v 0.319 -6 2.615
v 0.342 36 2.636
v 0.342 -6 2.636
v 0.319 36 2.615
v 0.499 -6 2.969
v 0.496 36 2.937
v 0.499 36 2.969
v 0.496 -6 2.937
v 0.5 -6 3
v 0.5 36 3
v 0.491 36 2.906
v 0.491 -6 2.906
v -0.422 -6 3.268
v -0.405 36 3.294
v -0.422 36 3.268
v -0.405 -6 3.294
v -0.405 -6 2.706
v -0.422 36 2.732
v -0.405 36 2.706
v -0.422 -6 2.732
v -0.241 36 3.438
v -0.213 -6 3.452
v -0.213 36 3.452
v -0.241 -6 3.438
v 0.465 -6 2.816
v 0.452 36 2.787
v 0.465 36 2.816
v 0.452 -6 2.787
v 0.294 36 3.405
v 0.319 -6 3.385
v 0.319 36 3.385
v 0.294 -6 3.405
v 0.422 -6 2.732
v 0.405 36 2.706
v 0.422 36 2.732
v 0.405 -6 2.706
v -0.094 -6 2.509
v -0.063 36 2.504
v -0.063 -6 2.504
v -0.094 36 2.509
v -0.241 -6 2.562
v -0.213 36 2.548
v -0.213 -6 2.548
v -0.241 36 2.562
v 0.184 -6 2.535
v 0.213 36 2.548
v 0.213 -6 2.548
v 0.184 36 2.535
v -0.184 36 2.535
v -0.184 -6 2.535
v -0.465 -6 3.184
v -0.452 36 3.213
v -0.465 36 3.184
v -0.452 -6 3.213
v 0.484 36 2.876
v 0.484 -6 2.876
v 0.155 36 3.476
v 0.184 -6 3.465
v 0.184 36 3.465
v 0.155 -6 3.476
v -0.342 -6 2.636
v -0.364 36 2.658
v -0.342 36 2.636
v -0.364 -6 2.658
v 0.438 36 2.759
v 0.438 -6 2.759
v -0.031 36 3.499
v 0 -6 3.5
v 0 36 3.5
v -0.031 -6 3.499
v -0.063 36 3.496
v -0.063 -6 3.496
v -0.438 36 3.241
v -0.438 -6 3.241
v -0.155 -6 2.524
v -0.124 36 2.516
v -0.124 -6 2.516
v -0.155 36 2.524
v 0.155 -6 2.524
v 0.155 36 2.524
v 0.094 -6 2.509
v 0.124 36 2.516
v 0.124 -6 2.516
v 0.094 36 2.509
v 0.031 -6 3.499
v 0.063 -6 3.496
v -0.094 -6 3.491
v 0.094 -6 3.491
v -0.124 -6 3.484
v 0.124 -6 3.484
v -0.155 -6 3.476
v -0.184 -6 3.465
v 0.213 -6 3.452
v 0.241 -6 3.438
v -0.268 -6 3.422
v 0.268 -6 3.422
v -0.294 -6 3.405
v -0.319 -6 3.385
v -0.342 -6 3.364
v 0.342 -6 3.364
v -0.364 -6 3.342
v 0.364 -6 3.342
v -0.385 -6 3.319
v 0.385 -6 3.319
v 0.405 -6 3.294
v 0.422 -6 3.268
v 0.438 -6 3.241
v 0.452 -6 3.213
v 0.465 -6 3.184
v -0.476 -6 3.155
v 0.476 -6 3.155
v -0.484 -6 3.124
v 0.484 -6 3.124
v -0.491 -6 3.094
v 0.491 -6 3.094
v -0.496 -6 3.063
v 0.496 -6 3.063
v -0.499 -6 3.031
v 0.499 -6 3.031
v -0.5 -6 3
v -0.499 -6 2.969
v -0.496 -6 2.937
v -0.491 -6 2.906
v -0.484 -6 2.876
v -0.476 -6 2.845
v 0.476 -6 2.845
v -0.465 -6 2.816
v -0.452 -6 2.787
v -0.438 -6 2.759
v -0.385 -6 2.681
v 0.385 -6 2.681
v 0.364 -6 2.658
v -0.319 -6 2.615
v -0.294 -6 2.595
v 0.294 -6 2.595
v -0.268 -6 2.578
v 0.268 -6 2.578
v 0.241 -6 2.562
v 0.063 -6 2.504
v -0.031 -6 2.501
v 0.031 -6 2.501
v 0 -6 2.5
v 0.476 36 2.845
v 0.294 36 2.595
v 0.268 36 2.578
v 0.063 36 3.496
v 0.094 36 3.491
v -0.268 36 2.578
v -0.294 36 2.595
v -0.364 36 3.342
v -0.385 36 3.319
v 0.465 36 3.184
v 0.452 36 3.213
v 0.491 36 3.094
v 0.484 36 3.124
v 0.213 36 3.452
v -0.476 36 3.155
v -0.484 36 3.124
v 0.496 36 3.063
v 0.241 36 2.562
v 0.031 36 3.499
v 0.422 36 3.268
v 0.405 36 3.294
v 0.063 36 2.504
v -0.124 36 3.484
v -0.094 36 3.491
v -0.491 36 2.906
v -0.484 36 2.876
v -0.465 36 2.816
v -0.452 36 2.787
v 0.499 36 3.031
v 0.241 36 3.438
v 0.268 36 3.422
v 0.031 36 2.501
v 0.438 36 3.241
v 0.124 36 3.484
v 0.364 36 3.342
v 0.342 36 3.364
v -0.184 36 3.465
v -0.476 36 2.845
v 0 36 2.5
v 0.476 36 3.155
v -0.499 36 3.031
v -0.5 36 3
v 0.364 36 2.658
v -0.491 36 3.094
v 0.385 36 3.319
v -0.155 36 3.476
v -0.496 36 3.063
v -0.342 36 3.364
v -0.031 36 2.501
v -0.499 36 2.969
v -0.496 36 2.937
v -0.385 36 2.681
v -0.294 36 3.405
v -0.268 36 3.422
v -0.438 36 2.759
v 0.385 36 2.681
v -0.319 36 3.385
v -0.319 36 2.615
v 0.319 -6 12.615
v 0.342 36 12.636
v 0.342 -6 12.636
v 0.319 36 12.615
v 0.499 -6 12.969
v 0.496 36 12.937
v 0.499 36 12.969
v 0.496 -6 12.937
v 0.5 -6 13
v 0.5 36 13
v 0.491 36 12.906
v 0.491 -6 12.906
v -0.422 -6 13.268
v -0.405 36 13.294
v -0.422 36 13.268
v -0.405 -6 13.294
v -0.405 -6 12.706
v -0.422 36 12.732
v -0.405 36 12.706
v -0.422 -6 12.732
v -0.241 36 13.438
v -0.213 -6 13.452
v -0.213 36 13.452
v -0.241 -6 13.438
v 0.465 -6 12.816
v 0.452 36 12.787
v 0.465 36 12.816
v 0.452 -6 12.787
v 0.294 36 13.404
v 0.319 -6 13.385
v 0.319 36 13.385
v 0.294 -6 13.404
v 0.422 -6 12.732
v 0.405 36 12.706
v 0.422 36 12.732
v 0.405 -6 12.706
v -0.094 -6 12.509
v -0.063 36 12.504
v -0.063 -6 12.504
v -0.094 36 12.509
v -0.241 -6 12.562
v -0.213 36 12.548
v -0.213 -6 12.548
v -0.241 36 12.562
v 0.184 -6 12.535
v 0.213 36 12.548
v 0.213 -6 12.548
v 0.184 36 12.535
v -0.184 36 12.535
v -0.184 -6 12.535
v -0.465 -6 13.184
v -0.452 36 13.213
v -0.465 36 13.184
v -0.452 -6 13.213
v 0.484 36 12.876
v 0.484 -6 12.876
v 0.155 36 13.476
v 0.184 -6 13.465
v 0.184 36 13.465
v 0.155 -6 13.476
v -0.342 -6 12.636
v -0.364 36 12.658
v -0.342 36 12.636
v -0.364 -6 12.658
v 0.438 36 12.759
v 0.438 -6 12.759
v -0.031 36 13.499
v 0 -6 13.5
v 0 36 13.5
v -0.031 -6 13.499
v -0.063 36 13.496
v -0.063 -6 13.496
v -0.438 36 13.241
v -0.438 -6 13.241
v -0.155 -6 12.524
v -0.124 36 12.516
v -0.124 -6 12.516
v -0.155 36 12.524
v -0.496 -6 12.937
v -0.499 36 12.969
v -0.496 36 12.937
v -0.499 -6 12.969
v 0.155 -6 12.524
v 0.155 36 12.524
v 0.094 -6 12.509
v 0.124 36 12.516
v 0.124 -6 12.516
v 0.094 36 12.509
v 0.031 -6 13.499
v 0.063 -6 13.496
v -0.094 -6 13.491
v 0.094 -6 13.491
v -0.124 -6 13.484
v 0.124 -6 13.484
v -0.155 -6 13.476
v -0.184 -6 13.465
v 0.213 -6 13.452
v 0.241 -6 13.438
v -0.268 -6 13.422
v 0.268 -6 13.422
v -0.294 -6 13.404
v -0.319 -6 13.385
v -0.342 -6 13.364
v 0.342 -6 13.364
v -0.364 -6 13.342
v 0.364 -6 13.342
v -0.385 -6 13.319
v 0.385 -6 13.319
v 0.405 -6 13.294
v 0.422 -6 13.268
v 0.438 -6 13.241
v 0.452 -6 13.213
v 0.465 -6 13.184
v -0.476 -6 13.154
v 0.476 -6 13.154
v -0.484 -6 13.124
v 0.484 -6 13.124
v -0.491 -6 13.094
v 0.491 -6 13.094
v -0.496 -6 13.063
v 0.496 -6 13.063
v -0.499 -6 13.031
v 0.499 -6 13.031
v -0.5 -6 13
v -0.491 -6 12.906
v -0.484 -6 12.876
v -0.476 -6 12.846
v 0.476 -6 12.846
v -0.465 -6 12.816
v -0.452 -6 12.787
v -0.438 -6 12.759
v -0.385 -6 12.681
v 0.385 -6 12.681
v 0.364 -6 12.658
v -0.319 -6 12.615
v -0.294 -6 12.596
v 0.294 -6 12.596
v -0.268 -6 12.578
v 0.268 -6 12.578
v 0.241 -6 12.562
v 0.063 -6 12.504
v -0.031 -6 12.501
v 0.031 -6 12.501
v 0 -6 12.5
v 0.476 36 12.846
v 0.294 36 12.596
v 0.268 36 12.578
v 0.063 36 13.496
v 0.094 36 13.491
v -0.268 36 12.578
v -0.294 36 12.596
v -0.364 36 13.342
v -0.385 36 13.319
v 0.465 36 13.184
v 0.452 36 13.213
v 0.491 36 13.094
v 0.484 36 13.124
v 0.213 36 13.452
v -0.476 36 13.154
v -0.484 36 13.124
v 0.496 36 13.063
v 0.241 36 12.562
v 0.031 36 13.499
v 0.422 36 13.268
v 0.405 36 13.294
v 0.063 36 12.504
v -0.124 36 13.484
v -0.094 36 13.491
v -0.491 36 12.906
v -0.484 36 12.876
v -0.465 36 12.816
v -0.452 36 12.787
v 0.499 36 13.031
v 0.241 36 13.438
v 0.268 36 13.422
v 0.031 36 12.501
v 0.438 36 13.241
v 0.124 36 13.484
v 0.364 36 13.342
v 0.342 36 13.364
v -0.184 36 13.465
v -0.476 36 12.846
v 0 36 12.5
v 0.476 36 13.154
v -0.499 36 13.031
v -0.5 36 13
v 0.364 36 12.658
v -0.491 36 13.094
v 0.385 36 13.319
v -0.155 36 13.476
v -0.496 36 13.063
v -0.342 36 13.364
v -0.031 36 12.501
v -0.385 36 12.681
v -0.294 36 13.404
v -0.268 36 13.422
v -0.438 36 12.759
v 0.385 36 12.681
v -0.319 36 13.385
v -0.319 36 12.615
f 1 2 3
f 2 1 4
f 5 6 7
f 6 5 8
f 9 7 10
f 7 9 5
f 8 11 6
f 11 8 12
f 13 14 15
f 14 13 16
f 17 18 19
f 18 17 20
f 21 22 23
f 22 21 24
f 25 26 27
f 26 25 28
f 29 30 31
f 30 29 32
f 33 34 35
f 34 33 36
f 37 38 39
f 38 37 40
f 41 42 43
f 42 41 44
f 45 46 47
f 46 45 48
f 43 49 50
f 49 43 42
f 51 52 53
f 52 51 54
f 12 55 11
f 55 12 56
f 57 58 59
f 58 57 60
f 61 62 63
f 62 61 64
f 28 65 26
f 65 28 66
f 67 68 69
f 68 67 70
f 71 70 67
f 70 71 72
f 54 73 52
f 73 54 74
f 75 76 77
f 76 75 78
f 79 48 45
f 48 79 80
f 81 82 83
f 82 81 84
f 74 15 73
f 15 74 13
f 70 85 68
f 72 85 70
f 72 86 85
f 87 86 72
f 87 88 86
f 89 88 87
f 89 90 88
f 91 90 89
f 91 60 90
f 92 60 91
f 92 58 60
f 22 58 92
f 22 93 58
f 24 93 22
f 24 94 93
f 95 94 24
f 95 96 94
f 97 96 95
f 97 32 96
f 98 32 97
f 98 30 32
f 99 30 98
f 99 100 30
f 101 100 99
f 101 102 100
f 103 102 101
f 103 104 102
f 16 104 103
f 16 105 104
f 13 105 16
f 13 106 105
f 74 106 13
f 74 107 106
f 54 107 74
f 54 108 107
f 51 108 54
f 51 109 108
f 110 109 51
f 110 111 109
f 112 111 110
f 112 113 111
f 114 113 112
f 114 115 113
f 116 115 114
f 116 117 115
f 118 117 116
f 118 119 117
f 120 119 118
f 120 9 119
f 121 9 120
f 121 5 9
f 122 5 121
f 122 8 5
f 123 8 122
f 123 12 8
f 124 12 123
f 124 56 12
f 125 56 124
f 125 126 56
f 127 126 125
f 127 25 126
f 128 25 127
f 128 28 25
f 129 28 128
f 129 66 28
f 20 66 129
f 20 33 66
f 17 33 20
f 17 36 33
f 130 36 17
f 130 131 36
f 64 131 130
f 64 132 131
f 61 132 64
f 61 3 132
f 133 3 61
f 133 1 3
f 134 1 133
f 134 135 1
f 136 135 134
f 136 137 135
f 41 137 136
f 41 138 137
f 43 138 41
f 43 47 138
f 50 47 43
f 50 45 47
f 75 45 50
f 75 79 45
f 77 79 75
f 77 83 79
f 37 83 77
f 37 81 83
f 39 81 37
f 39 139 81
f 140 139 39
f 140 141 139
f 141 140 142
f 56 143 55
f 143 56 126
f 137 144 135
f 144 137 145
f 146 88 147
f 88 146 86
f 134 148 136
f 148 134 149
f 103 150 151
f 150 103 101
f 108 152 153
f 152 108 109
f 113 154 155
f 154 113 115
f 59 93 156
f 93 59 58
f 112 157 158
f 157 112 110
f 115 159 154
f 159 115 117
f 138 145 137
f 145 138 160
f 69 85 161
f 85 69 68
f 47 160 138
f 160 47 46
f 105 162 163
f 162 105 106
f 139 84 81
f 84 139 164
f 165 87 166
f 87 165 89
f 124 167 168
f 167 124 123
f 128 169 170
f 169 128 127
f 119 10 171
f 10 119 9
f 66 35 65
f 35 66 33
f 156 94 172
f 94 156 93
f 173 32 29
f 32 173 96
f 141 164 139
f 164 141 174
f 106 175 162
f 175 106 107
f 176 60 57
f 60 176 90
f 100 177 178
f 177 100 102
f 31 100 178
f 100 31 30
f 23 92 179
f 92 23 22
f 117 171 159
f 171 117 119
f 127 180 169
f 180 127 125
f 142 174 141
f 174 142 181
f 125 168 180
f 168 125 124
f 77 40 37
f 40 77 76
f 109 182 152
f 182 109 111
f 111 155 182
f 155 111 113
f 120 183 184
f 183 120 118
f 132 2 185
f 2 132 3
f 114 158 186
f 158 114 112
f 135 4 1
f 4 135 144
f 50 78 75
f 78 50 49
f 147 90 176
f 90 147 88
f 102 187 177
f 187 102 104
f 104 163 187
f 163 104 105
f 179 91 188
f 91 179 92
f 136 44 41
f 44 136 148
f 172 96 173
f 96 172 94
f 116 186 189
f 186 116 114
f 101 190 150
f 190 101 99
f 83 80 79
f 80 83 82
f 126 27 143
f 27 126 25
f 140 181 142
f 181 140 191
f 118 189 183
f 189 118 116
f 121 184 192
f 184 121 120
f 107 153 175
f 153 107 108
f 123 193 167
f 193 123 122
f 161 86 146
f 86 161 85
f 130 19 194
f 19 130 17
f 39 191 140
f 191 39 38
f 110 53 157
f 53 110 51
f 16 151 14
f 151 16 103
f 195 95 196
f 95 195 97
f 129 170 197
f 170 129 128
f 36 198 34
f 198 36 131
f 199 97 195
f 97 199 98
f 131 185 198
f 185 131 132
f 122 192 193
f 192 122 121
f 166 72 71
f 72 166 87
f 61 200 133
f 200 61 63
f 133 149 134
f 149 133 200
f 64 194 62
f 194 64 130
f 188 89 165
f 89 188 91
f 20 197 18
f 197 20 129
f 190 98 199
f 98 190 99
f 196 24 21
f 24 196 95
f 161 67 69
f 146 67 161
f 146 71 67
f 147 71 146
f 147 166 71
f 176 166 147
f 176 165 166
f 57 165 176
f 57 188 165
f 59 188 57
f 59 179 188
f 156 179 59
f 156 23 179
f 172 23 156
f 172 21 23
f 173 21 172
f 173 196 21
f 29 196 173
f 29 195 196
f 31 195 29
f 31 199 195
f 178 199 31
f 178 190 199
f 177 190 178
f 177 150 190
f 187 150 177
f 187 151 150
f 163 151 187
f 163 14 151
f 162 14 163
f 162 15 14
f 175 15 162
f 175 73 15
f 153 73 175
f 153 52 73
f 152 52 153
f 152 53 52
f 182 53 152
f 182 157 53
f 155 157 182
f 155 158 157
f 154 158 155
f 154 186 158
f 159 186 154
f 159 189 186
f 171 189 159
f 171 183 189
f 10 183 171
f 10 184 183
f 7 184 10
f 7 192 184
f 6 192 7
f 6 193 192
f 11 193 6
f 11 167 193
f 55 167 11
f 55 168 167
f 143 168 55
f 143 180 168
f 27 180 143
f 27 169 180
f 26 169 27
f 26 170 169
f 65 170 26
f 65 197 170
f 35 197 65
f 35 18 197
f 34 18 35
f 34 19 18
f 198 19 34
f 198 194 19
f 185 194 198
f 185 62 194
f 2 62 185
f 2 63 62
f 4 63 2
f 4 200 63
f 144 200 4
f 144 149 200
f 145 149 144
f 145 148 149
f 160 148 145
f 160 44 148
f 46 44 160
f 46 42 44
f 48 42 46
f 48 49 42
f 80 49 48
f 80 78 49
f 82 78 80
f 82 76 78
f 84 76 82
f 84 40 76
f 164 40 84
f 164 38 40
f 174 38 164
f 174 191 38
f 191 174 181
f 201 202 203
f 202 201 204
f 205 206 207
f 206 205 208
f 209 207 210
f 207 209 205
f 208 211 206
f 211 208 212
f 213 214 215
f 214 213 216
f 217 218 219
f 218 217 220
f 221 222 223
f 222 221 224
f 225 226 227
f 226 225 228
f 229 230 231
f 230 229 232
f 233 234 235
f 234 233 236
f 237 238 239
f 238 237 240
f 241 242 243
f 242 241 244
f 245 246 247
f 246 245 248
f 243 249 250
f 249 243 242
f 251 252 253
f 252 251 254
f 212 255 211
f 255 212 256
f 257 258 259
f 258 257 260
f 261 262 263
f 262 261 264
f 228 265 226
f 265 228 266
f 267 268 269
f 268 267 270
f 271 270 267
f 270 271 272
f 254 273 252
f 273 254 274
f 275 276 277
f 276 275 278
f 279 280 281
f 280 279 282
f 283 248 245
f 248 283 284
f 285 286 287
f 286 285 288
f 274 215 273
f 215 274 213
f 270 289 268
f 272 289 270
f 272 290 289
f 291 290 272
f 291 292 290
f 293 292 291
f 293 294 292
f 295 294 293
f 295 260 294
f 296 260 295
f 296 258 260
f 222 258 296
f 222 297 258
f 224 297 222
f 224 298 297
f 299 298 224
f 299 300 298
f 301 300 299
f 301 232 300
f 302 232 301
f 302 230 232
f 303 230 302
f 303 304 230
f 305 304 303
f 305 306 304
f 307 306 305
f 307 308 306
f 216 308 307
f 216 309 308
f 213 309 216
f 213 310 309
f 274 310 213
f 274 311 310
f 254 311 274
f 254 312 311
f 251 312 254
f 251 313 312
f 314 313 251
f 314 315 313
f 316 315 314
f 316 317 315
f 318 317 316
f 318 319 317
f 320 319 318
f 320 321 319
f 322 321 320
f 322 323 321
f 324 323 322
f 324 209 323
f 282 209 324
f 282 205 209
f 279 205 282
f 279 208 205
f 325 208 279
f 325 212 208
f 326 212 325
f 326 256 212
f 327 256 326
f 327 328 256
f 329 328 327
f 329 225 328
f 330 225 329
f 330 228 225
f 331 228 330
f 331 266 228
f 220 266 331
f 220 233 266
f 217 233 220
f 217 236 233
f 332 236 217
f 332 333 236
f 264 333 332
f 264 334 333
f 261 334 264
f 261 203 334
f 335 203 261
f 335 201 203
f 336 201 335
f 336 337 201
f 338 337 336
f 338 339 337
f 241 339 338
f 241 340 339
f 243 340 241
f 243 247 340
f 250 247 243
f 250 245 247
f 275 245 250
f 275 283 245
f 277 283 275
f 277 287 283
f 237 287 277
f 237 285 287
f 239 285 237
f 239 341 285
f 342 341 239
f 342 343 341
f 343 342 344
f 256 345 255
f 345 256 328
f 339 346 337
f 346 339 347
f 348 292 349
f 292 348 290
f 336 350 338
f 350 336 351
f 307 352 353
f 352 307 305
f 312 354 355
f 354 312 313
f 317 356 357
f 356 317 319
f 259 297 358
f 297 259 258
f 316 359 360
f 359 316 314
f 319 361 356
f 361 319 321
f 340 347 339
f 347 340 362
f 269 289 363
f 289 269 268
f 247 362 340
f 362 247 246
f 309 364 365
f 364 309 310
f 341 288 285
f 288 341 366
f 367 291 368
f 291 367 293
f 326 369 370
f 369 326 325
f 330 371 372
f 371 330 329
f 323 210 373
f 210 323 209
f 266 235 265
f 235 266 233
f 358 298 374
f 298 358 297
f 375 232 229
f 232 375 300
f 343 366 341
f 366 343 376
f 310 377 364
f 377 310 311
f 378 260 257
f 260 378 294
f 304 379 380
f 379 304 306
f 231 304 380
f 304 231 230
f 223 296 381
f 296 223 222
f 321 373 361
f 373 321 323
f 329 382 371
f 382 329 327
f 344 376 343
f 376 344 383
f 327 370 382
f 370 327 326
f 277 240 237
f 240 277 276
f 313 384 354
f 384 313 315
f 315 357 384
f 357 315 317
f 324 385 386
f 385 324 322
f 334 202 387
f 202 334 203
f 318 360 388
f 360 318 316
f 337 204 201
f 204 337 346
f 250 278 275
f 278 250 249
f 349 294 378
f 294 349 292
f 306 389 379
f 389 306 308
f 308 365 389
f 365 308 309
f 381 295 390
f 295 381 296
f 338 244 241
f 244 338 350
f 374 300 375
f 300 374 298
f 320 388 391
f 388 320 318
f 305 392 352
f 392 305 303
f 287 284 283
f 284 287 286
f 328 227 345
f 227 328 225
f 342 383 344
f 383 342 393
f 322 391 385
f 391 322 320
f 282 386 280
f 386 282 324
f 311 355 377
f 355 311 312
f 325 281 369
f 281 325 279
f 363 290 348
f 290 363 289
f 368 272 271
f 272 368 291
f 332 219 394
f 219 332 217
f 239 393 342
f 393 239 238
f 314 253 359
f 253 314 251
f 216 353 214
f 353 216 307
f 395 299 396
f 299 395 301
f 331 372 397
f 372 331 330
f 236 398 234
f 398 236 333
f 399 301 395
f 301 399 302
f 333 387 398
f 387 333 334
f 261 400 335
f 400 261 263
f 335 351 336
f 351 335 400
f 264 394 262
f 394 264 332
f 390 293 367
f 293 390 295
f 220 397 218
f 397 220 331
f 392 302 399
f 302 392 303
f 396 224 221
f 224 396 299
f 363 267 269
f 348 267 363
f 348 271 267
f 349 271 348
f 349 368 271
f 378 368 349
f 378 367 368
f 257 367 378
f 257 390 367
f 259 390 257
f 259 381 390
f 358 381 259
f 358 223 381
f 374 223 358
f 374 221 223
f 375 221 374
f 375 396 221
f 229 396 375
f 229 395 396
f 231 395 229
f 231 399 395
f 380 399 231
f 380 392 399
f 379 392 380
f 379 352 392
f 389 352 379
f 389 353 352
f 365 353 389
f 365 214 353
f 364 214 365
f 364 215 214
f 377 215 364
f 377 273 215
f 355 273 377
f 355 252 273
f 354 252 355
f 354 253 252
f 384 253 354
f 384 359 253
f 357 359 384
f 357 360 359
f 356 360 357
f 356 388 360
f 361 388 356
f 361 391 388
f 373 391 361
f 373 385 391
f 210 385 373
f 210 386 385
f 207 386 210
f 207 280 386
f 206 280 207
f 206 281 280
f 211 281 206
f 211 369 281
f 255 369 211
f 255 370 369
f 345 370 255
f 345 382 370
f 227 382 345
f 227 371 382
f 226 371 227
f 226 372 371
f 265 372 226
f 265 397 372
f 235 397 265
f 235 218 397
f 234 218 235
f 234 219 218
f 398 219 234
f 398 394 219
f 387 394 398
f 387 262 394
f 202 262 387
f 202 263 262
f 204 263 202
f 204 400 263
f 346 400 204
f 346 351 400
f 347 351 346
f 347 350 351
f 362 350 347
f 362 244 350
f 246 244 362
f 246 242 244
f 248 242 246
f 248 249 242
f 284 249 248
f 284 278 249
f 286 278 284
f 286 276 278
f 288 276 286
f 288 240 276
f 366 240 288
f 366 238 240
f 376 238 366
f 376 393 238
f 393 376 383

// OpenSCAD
translate ([0, -6, 3]) {
    rotate ([-90, 0, 0]) {
        cylinder(r=0.5, h=42, $fn=100);
    }
}
translate ([0, -6, 13]) {
    rotate ([-90, 0, 0]) {
        cylinder(r=0.5, h=42, $fn=100);
    }
}
